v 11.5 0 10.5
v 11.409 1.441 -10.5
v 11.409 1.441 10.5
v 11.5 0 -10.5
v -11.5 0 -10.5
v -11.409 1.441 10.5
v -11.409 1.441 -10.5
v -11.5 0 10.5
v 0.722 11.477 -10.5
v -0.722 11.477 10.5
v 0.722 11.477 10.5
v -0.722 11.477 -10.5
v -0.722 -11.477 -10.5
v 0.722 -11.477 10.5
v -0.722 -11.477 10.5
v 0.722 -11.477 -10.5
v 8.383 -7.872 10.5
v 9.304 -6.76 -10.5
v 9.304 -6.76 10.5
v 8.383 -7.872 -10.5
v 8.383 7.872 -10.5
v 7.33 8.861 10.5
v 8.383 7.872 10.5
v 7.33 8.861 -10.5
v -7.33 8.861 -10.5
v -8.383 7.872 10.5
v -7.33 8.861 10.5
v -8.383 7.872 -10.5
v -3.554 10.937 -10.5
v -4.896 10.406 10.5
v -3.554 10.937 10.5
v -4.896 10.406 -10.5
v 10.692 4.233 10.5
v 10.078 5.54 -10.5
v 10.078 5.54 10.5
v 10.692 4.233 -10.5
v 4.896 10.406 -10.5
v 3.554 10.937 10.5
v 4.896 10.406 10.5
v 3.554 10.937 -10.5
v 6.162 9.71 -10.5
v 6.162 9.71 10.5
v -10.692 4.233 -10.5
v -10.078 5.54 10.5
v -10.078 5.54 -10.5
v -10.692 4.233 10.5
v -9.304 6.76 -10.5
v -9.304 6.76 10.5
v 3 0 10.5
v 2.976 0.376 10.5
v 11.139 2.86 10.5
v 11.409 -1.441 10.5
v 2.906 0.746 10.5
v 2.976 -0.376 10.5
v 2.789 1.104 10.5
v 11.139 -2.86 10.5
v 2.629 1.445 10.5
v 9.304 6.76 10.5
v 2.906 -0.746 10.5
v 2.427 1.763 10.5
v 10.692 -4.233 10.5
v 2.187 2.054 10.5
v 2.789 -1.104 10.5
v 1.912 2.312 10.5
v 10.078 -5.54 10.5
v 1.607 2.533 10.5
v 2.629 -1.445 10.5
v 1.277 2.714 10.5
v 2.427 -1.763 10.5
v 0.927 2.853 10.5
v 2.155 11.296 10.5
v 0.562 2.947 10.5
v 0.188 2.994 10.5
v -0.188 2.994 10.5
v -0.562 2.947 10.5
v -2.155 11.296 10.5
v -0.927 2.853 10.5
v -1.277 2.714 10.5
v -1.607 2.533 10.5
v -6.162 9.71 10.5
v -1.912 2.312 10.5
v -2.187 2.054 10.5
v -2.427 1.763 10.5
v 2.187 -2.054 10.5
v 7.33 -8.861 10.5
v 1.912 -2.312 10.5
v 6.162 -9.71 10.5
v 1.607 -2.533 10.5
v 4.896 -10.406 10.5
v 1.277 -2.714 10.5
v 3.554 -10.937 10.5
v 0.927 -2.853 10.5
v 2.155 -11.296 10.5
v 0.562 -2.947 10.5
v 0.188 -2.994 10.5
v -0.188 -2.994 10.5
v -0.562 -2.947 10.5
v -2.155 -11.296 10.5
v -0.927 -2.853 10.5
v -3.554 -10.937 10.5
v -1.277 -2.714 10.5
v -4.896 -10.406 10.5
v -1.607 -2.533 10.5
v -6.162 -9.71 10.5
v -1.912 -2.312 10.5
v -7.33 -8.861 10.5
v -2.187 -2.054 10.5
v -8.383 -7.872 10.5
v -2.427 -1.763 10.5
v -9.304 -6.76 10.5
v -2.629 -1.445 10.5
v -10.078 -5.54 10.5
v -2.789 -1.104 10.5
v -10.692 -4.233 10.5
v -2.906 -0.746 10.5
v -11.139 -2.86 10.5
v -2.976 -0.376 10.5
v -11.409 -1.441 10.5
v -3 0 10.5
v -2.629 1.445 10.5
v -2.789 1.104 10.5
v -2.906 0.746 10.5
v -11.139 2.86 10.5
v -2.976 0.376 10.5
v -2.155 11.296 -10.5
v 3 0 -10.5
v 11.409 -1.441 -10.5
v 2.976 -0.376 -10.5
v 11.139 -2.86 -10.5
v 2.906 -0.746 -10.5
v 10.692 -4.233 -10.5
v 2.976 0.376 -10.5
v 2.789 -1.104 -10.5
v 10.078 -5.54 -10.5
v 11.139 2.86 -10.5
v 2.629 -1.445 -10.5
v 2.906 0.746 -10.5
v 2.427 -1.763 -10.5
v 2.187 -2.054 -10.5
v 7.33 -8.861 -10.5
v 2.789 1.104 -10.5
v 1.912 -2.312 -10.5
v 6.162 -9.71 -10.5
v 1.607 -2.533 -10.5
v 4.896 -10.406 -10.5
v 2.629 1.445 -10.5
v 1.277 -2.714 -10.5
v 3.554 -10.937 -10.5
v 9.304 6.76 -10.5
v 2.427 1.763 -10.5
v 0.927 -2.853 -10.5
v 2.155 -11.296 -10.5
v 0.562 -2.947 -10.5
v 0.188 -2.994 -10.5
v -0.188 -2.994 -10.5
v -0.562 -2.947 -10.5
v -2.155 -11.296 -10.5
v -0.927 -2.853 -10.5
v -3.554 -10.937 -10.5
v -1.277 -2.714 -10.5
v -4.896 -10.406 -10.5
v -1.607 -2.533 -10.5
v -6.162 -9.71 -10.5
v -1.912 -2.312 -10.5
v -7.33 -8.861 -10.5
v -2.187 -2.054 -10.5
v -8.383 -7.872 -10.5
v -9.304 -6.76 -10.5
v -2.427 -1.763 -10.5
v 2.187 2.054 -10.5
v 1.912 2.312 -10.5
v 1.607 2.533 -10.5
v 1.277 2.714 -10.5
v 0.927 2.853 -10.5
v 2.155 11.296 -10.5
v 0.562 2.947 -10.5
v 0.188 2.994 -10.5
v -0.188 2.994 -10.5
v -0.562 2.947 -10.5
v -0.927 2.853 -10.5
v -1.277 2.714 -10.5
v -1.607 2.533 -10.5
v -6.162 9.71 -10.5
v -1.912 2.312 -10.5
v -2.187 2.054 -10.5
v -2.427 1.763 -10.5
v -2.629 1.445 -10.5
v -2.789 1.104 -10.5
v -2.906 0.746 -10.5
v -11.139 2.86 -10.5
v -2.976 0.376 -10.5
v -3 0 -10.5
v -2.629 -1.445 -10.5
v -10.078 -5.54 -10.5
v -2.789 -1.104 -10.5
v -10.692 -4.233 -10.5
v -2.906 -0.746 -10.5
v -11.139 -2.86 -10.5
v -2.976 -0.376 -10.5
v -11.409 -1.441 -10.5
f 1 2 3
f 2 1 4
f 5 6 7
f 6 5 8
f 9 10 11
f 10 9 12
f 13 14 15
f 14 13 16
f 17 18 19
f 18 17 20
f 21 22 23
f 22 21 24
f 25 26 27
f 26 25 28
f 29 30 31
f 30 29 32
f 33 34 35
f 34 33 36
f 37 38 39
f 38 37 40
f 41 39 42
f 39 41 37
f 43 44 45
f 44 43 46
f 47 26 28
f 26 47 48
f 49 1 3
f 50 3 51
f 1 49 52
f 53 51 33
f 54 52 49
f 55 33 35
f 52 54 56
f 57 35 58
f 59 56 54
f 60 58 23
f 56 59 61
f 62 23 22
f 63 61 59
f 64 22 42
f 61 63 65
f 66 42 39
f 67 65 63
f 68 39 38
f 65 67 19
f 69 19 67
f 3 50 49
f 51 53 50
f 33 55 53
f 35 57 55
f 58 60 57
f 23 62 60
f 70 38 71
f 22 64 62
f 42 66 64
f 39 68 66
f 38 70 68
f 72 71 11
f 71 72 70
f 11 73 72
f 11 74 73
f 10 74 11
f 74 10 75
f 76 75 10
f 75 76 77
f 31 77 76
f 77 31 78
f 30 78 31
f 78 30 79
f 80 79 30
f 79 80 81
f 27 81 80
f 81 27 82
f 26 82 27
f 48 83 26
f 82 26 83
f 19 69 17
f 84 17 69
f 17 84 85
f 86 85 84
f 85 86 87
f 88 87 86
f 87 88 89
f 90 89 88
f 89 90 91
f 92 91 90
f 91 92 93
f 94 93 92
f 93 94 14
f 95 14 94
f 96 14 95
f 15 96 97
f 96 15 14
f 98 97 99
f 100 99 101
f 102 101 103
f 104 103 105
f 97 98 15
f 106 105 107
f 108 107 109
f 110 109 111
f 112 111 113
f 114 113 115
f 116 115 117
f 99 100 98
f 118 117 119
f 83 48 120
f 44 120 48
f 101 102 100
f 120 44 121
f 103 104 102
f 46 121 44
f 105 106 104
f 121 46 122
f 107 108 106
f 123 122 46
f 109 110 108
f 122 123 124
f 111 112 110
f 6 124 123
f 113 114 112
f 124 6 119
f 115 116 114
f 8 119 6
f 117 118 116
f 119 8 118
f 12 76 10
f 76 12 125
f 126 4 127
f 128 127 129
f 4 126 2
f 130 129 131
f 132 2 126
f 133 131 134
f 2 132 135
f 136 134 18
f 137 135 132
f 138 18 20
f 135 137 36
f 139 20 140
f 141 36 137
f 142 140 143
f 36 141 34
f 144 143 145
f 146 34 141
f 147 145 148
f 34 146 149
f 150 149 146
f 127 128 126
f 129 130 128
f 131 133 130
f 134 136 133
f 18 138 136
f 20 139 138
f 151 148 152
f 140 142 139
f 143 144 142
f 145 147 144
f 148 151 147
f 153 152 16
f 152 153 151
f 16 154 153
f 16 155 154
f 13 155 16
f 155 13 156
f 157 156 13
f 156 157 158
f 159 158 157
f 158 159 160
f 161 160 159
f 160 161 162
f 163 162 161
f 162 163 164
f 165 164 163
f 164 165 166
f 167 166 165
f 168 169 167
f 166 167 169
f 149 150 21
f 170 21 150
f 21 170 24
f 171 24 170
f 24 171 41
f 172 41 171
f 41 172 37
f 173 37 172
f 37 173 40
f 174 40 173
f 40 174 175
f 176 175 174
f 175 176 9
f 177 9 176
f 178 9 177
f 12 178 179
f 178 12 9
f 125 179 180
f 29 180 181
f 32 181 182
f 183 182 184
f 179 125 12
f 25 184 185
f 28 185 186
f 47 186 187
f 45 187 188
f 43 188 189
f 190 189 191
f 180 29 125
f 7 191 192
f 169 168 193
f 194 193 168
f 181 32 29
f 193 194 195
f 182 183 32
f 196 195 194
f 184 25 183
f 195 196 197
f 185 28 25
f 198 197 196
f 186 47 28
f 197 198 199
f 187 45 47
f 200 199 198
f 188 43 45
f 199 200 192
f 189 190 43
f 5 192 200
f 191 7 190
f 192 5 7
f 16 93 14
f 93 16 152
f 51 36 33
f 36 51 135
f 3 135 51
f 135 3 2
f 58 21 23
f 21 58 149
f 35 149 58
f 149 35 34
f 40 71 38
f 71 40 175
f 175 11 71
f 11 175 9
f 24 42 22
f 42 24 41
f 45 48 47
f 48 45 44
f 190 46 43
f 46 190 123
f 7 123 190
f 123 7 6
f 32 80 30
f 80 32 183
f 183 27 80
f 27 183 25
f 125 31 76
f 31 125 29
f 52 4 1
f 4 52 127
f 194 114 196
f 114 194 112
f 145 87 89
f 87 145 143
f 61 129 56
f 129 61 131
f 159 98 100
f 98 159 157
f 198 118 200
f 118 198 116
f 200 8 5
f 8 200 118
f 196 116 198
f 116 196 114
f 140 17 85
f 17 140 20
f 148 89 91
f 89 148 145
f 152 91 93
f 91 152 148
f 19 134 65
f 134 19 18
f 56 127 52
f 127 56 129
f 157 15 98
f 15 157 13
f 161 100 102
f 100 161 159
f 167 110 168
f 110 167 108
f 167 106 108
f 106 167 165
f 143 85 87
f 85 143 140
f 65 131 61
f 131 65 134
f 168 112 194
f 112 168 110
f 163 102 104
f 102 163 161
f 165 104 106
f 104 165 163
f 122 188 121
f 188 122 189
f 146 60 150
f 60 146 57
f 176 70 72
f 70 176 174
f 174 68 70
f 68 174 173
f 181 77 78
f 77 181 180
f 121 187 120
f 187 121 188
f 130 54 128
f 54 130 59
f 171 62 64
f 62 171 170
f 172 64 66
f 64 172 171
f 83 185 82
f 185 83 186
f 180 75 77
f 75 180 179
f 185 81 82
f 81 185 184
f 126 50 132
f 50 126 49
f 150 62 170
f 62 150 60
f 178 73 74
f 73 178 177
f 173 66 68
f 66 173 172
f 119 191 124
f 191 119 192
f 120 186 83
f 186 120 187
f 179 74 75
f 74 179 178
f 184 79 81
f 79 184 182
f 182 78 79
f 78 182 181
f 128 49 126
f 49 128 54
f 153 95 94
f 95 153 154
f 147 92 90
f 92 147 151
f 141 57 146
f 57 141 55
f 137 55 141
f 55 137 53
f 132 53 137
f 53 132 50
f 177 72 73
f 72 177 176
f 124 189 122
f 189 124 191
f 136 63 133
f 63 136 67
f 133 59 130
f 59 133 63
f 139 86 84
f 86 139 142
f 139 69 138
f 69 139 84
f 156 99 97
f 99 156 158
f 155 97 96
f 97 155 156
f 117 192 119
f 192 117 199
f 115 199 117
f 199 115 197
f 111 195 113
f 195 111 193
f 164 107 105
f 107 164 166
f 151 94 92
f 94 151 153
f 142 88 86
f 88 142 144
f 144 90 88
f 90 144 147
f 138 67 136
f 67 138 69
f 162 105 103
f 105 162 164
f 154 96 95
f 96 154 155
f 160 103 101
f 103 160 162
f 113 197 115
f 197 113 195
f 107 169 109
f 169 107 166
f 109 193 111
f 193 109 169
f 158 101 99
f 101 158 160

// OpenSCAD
$fn = 50;


difference() {
	union() {
		translate(v = [0, 0, -10.5000000000]) {
			cylinder(h = 21, r = 11.5000000000);
		}
	}
	union() {
		translate(v = [0, 0, -100.0000000000]) {
			cylinder(h = 200, r = 3);
		}
	}
}
